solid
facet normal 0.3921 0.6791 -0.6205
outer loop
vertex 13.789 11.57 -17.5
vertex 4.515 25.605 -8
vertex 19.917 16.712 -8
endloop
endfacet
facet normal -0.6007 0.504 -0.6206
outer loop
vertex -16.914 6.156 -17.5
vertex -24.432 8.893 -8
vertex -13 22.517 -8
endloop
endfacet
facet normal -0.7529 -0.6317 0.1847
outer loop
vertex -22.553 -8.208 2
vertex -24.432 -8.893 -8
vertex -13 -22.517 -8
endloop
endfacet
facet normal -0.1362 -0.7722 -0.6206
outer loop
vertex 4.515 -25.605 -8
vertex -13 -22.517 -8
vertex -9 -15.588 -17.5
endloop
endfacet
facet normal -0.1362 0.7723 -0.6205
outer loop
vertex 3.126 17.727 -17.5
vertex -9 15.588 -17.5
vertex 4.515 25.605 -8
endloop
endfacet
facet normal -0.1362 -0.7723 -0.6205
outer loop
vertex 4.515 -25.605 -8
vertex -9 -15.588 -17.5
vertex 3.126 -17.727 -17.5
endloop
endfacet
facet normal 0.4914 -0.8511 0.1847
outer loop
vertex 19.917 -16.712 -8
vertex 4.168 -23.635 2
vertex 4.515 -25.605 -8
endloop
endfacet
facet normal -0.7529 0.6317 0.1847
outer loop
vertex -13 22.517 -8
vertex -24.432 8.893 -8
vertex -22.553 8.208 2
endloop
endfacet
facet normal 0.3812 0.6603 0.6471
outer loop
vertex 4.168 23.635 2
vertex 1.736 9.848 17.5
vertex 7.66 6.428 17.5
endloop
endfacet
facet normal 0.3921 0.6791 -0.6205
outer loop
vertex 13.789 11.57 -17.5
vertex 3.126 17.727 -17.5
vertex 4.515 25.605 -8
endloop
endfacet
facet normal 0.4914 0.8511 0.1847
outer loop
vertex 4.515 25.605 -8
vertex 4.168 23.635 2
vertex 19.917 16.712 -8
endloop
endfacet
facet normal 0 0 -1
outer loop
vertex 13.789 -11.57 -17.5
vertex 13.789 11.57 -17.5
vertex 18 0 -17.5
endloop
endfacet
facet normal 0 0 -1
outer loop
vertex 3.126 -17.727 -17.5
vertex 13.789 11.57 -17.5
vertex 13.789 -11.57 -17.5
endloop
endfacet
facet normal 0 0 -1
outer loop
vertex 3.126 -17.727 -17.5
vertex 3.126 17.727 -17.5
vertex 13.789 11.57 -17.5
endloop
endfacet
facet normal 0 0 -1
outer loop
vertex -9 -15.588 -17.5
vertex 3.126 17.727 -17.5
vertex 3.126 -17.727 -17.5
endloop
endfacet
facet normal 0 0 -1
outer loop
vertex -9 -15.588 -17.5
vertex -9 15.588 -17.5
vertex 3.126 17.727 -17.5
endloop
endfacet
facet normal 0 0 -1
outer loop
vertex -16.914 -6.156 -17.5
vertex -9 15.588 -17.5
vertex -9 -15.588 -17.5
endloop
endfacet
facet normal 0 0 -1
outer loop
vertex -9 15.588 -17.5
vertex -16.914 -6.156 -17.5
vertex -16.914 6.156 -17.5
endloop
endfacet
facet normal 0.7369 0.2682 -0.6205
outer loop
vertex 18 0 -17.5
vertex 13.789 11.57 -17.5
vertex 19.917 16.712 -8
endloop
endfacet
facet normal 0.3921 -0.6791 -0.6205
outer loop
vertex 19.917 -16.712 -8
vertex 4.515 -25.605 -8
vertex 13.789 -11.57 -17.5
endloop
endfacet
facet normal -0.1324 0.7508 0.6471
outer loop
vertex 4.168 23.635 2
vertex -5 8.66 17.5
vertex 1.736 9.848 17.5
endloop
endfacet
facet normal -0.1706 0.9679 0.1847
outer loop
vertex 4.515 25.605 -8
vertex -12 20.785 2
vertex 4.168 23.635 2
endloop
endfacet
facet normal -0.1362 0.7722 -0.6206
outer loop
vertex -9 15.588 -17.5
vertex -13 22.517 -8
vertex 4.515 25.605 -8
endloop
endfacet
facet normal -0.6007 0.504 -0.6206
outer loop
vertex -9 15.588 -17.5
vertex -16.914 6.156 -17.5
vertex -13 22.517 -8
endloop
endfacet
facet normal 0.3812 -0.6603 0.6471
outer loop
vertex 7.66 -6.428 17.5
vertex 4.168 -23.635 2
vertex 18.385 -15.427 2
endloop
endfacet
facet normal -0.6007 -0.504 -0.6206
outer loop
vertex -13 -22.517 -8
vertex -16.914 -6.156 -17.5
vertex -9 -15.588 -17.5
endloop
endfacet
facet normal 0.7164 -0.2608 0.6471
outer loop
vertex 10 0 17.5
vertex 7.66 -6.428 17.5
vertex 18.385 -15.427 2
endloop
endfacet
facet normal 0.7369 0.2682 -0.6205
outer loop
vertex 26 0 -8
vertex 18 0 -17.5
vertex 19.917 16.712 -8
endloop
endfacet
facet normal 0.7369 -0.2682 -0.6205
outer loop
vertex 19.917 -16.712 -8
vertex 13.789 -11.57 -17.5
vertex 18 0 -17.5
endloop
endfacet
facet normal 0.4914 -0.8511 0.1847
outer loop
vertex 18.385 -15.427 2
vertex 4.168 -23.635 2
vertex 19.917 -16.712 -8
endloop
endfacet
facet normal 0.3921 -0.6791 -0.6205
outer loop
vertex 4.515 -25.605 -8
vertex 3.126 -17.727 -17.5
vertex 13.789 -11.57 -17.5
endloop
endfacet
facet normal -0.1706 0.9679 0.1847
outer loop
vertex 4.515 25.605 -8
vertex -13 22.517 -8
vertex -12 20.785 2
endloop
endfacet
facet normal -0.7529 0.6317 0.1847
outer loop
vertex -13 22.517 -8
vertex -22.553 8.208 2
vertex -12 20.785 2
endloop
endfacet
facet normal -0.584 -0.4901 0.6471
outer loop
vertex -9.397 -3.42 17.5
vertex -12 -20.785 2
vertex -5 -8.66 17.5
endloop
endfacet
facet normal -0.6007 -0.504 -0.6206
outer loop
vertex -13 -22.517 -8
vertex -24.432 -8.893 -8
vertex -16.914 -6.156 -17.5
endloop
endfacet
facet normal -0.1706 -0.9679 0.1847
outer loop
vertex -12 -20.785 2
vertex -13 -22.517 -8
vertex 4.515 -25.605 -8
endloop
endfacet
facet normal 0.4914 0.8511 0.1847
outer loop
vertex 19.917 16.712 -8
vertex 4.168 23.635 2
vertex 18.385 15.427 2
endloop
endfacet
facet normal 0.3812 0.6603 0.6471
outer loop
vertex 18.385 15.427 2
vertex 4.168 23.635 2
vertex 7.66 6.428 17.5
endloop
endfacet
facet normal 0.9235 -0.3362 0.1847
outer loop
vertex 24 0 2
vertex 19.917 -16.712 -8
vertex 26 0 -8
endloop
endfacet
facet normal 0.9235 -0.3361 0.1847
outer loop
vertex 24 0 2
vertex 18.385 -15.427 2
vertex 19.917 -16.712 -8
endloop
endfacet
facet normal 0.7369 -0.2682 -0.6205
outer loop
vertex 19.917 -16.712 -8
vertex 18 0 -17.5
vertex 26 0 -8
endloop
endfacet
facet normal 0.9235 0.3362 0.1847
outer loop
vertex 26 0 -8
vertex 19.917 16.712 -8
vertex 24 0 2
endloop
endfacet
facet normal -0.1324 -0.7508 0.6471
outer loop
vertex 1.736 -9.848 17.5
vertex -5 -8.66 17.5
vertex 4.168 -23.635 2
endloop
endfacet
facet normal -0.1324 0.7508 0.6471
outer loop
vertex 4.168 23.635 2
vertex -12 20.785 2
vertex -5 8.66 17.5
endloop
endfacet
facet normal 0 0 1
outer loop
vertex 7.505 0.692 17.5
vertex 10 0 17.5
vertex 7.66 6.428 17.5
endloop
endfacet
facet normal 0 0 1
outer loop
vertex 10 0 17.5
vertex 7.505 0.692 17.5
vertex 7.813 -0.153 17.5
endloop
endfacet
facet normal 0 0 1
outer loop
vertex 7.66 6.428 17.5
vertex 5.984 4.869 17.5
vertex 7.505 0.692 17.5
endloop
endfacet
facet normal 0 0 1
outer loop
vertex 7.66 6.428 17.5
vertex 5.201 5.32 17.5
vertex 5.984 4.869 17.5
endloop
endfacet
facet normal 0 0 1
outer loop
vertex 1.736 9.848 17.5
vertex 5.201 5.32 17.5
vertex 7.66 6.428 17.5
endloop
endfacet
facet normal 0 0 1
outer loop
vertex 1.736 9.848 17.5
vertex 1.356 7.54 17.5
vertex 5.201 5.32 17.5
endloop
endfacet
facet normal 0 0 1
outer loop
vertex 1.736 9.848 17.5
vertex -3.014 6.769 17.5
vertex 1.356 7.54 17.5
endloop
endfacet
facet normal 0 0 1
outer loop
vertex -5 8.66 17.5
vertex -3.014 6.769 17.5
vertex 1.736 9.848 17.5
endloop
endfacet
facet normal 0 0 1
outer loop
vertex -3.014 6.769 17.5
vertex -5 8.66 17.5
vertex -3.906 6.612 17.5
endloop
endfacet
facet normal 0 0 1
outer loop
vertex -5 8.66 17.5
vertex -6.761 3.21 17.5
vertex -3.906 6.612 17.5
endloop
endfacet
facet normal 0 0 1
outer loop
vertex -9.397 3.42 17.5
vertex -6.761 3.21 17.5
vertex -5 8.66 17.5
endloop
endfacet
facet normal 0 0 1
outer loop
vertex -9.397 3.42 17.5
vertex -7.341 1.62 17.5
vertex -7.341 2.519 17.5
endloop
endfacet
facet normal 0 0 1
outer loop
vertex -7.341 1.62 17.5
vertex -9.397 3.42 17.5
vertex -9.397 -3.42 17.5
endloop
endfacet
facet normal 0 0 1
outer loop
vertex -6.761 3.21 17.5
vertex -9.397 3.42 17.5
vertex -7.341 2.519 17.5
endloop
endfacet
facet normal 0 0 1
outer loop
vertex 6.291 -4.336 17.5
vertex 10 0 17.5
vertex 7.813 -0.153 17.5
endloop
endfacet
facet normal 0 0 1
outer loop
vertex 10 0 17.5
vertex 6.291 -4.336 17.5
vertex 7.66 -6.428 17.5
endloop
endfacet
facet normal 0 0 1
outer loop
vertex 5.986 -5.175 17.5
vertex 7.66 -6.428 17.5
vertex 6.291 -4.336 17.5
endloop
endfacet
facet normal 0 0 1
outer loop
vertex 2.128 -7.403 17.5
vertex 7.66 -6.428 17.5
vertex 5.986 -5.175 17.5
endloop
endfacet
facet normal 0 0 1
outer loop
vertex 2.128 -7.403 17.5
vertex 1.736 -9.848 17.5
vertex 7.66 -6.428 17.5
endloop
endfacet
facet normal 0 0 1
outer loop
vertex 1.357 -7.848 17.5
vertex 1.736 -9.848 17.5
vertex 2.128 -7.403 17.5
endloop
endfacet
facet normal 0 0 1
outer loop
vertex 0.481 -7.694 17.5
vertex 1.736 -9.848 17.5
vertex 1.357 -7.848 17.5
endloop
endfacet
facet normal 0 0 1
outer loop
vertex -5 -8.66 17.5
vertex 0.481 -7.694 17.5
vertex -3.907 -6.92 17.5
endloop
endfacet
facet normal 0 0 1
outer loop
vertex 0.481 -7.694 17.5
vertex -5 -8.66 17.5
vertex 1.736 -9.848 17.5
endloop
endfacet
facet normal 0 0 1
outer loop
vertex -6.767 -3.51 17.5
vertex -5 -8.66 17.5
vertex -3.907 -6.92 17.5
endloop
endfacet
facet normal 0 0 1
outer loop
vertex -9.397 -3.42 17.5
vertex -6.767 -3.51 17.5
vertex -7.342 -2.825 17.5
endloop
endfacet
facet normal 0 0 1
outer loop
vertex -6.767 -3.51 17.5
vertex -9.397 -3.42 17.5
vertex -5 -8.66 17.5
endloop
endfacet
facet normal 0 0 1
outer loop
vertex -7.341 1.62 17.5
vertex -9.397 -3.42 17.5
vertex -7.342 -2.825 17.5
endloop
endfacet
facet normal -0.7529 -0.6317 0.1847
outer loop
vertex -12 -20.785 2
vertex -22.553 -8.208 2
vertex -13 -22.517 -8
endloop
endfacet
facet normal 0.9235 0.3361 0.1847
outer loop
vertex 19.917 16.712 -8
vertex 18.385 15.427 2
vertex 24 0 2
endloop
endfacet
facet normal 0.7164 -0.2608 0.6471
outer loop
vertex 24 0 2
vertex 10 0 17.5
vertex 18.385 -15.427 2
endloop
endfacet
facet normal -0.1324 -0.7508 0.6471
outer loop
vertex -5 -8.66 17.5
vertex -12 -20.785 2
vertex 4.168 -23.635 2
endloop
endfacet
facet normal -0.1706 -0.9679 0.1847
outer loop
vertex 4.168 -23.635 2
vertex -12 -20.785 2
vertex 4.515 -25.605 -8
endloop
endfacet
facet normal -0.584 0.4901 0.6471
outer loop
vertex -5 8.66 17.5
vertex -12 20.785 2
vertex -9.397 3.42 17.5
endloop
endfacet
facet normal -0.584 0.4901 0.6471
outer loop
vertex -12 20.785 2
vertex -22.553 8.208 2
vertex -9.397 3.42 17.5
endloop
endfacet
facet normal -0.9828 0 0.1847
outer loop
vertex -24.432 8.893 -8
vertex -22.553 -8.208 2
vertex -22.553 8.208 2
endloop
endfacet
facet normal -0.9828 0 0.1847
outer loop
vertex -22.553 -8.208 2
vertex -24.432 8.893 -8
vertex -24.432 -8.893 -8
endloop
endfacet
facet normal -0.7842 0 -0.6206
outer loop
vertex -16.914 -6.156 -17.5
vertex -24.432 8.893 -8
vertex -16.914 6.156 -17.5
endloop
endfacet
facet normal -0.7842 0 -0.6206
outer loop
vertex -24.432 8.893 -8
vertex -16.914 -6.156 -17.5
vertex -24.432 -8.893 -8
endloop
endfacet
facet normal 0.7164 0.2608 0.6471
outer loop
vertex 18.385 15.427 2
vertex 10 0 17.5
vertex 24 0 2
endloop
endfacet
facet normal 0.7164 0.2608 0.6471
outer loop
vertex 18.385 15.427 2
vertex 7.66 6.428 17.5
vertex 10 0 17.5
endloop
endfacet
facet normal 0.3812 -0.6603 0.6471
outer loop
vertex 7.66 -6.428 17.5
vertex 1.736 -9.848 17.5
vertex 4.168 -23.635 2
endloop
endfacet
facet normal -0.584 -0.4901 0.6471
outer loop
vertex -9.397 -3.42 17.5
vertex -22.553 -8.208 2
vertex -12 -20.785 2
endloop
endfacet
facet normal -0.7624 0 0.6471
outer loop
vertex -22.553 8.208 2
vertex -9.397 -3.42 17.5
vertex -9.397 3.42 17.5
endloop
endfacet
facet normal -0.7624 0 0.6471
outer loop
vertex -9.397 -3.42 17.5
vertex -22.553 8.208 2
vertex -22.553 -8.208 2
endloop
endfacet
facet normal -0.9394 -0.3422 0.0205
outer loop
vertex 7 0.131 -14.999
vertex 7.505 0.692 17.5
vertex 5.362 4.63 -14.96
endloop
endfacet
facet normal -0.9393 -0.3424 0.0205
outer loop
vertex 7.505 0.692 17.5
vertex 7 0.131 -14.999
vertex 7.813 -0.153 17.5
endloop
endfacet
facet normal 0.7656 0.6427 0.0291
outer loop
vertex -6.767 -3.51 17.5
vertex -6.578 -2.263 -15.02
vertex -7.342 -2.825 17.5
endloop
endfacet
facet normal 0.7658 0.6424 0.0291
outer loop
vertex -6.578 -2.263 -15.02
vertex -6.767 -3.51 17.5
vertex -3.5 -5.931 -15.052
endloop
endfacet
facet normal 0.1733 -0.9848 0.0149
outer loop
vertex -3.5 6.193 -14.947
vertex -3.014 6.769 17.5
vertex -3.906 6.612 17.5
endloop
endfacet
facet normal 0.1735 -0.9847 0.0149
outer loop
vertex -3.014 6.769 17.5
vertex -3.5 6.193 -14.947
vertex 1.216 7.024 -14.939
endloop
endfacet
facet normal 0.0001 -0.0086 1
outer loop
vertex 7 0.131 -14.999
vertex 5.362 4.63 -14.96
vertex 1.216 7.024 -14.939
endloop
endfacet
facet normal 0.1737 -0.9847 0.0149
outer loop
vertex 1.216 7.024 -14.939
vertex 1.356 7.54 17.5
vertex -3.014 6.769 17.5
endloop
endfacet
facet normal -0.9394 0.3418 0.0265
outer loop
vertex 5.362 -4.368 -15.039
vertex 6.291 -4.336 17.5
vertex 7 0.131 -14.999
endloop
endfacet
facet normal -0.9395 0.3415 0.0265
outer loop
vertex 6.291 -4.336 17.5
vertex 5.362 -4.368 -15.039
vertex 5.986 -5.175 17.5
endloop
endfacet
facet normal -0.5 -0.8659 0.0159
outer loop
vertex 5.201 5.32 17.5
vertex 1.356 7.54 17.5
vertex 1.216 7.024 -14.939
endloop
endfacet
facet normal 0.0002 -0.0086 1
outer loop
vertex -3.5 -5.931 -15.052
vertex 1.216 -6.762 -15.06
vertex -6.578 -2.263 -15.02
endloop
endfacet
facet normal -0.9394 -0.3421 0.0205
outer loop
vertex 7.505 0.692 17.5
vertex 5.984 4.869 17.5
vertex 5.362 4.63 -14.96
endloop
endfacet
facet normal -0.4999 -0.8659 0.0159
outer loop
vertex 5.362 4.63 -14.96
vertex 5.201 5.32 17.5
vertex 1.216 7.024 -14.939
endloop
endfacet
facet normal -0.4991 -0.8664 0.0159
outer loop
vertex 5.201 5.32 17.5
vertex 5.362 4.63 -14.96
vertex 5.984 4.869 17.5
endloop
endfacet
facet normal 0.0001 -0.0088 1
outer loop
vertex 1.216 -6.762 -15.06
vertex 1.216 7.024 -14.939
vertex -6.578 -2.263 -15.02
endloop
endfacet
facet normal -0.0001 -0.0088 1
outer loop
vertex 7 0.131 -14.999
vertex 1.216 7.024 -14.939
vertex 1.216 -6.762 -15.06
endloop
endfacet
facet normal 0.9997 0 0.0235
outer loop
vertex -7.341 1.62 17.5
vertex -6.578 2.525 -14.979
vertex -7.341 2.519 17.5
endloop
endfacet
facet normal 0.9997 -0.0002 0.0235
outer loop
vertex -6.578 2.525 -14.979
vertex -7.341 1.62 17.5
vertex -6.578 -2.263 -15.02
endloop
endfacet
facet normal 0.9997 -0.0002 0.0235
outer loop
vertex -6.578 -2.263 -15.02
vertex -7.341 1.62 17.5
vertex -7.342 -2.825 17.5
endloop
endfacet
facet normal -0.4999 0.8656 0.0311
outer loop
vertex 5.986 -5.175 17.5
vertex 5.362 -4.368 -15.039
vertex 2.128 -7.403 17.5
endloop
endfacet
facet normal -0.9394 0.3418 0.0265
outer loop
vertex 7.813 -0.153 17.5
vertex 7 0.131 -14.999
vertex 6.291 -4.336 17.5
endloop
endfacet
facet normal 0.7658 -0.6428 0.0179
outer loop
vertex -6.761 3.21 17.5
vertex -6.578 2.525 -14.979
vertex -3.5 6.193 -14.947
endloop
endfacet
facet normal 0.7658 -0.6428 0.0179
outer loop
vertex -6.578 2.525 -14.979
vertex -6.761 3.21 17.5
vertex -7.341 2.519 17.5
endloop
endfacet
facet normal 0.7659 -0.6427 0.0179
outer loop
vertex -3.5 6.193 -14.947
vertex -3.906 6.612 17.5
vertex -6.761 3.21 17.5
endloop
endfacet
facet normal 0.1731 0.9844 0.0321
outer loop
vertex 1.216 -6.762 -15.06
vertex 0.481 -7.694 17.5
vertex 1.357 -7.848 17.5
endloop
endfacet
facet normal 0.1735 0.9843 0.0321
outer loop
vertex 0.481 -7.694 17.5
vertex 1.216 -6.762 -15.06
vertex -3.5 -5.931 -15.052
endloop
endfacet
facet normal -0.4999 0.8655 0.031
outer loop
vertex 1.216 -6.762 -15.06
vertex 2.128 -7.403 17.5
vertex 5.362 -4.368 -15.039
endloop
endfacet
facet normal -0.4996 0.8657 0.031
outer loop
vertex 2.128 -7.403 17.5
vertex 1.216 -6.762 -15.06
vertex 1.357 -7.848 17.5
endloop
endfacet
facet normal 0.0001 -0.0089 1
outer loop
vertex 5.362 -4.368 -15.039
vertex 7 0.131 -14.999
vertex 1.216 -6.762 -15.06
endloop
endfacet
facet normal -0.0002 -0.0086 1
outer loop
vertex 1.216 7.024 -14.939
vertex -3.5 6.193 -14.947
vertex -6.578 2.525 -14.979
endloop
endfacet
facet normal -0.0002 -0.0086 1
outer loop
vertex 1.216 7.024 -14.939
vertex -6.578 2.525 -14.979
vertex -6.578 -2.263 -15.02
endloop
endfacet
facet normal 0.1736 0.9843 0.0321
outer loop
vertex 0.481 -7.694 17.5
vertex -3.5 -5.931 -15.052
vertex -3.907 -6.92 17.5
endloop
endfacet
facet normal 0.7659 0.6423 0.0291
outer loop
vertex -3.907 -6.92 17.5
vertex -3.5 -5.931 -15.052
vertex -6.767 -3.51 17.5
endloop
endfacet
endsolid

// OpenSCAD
$fn=9;
difference(){
     
  hull(){
 cylinder(35,18,1,true);
cylinder(35/2,10,10);
//cylinder(21/2,10,18);

translate([0,0,-3])cylinder(10,26,24,true);
}
 rotate([.5,0,0]) translate([0,0,-15])cylinder(40,7,8);

}
